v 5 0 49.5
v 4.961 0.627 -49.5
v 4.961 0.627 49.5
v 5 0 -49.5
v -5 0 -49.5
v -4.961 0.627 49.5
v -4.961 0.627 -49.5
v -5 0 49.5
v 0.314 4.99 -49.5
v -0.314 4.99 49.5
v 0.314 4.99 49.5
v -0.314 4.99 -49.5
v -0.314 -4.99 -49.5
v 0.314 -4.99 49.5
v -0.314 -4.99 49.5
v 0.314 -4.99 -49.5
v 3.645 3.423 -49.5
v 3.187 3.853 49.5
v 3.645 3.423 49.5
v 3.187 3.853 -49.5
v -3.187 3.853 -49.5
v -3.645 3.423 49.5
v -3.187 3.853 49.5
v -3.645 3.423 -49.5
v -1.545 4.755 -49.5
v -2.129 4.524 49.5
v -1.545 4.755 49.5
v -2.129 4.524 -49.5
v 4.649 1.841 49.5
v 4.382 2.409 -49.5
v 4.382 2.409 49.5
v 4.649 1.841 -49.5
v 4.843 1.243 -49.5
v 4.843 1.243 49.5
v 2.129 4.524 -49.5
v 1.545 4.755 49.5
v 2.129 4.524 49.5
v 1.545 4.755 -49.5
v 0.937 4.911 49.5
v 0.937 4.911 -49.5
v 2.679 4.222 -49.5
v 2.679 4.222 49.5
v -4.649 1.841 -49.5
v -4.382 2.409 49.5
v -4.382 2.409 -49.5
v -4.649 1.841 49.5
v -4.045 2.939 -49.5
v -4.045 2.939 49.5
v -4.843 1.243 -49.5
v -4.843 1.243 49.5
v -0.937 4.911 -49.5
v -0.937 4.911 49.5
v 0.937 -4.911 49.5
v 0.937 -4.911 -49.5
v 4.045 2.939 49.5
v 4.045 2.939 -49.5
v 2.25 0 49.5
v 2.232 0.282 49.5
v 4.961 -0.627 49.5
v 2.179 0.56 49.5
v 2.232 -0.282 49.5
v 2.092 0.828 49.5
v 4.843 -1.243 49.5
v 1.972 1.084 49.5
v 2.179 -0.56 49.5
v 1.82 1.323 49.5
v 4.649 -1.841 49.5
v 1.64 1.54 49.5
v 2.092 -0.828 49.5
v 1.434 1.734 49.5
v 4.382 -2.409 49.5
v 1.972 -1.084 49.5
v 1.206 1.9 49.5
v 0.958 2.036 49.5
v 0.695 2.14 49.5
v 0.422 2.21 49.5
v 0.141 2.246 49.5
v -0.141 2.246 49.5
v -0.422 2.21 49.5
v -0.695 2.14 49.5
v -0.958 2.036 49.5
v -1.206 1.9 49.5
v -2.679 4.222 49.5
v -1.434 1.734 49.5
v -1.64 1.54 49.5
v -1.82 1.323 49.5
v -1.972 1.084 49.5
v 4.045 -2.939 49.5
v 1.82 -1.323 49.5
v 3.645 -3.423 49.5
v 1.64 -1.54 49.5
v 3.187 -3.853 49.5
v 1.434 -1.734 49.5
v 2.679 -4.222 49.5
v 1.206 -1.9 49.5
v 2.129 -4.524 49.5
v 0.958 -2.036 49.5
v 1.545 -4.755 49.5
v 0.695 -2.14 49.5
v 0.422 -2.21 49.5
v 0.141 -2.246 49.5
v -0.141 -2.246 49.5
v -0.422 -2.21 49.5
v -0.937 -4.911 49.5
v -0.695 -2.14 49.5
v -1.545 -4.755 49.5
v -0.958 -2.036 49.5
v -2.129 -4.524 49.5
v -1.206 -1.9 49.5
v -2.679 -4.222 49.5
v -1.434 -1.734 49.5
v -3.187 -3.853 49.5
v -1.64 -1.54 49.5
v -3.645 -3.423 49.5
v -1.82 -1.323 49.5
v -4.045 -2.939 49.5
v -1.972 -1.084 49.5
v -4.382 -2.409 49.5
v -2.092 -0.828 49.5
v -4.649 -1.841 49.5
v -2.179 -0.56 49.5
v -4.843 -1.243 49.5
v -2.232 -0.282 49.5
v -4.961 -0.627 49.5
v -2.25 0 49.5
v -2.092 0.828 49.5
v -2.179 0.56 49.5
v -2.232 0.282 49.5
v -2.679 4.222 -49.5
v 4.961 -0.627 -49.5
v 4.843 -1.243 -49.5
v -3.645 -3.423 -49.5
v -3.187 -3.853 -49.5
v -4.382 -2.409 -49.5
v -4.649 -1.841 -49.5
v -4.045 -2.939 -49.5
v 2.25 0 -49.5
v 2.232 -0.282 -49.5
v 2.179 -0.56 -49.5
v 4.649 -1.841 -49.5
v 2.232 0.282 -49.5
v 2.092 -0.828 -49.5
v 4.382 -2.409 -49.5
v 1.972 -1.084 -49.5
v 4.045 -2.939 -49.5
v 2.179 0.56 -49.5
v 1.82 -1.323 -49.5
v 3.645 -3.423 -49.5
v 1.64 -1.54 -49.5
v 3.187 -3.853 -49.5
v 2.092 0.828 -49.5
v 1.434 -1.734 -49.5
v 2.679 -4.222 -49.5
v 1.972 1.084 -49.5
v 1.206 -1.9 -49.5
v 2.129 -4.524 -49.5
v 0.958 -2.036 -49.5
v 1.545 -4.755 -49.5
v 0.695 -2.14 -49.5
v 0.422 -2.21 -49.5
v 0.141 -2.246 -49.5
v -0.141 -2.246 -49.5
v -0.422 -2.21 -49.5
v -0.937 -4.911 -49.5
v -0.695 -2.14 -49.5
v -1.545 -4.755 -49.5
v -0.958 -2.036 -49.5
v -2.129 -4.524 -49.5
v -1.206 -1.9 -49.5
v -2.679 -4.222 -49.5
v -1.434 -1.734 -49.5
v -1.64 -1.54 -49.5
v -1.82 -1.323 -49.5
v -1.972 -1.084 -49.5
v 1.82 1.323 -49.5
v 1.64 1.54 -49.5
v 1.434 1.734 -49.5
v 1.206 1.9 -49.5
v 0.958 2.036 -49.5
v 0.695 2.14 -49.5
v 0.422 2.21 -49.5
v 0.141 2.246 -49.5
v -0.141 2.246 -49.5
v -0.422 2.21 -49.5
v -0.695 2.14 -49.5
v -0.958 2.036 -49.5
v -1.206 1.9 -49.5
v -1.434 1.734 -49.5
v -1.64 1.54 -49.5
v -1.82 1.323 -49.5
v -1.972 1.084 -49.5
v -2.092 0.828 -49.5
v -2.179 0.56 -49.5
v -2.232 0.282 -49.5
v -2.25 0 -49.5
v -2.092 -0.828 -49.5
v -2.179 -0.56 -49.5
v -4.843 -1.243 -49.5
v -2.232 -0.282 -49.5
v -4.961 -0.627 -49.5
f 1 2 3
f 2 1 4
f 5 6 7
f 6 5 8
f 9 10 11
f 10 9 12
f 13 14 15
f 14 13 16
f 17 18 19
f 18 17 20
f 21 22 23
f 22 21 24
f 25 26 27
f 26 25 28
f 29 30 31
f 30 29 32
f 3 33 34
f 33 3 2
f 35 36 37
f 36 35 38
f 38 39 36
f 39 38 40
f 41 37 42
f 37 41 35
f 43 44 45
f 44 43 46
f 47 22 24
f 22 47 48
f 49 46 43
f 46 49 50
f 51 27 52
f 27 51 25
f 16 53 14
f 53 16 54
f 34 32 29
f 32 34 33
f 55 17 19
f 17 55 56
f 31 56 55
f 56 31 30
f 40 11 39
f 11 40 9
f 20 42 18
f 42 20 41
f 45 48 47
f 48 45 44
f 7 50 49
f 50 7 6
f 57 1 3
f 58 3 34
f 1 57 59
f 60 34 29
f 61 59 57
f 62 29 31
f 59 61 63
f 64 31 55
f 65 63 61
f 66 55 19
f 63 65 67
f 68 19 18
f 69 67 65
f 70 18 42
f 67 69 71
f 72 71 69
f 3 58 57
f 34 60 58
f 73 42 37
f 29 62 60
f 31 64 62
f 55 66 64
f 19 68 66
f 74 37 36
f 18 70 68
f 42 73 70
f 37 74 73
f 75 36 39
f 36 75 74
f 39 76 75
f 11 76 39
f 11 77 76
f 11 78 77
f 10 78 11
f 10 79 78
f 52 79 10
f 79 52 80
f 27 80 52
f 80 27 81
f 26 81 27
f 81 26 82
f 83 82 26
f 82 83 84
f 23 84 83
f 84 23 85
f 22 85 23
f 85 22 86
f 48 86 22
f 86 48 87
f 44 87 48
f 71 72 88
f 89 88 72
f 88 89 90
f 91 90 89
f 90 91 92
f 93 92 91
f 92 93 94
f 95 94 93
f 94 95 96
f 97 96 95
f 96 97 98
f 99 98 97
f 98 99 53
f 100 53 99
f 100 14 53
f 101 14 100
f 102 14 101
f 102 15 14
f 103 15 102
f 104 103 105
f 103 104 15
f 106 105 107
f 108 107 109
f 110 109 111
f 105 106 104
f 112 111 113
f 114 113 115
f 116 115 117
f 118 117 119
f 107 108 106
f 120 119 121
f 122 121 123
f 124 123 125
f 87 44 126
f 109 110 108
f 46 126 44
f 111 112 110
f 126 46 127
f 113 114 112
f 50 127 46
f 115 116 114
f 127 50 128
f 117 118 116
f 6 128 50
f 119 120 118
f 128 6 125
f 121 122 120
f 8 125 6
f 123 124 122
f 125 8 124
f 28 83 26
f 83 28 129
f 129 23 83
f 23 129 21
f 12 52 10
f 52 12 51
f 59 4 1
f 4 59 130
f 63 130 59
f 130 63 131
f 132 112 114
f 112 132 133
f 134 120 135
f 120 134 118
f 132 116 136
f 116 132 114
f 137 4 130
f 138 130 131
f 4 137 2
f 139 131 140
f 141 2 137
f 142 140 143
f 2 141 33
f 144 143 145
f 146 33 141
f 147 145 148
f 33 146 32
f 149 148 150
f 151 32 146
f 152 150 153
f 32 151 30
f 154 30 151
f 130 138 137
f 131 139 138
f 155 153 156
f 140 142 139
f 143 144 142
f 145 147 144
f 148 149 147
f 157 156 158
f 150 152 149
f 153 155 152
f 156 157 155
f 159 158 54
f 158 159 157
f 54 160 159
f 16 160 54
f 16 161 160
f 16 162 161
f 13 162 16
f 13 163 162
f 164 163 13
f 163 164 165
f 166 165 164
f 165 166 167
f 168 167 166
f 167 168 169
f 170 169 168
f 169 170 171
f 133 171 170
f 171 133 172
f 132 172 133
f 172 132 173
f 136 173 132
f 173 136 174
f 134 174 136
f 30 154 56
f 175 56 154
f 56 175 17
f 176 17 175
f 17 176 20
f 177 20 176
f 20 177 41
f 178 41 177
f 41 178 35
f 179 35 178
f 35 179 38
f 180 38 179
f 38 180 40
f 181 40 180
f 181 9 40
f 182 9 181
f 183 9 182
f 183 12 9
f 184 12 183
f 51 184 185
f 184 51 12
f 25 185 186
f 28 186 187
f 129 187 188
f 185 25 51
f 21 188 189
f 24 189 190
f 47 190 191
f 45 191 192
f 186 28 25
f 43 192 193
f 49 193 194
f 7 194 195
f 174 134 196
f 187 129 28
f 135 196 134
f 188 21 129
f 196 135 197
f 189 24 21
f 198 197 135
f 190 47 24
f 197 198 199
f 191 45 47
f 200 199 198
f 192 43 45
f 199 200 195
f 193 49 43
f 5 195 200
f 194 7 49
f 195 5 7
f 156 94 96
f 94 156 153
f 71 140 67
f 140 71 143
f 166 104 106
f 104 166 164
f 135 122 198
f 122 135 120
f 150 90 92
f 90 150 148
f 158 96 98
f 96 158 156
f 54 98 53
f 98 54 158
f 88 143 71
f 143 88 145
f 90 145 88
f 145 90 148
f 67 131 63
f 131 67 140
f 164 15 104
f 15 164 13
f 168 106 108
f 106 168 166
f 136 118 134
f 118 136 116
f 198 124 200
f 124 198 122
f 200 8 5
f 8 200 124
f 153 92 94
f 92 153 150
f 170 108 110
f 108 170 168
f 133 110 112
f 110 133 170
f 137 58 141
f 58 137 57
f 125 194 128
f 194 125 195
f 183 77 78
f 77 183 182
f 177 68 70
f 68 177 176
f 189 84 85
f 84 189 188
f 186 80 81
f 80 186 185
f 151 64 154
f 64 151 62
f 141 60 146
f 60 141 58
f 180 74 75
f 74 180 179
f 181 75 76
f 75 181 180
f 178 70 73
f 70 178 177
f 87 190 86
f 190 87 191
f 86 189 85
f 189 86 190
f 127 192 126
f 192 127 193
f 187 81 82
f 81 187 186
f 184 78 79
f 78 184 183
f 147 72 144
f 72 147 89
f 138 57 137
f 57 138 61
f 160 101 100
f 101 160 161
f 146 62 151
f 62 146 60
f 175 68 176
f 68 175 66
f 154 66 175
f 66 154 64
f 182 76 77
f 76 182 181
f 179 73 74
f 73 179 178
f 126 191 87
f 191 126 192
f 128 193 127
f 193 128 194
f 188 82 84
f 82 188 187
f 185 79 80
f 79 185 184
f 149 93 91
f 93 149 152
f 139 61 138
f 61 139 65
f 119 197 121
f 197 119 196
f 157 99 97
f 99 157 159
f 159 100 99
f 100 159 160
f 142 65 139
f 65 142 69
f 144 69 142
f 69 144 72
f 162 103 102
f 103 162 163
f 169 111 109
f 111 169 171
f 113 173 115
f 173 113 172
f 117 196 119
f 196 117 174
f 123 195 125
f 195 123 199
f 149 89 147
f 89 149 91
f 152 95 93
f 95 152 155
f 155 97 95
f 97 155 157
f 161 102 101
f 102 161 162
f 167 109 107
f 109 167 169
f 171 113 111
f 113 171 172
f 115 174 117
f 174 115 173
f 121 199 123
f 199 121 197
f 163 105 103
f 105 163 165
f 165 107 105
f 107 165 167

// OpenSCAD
$fn = 50;


difference() {
	union() {
		translate(v = [0, 0, -49.5000000000]) {
			cylinder(h = 99, r = 5.0000000000);
		}
	}
	union() {
		translate(v = [0, 0, -100.0000000000]) {
			cylinder(h = 200, r = 2.2500000000);
		}
	}
}
